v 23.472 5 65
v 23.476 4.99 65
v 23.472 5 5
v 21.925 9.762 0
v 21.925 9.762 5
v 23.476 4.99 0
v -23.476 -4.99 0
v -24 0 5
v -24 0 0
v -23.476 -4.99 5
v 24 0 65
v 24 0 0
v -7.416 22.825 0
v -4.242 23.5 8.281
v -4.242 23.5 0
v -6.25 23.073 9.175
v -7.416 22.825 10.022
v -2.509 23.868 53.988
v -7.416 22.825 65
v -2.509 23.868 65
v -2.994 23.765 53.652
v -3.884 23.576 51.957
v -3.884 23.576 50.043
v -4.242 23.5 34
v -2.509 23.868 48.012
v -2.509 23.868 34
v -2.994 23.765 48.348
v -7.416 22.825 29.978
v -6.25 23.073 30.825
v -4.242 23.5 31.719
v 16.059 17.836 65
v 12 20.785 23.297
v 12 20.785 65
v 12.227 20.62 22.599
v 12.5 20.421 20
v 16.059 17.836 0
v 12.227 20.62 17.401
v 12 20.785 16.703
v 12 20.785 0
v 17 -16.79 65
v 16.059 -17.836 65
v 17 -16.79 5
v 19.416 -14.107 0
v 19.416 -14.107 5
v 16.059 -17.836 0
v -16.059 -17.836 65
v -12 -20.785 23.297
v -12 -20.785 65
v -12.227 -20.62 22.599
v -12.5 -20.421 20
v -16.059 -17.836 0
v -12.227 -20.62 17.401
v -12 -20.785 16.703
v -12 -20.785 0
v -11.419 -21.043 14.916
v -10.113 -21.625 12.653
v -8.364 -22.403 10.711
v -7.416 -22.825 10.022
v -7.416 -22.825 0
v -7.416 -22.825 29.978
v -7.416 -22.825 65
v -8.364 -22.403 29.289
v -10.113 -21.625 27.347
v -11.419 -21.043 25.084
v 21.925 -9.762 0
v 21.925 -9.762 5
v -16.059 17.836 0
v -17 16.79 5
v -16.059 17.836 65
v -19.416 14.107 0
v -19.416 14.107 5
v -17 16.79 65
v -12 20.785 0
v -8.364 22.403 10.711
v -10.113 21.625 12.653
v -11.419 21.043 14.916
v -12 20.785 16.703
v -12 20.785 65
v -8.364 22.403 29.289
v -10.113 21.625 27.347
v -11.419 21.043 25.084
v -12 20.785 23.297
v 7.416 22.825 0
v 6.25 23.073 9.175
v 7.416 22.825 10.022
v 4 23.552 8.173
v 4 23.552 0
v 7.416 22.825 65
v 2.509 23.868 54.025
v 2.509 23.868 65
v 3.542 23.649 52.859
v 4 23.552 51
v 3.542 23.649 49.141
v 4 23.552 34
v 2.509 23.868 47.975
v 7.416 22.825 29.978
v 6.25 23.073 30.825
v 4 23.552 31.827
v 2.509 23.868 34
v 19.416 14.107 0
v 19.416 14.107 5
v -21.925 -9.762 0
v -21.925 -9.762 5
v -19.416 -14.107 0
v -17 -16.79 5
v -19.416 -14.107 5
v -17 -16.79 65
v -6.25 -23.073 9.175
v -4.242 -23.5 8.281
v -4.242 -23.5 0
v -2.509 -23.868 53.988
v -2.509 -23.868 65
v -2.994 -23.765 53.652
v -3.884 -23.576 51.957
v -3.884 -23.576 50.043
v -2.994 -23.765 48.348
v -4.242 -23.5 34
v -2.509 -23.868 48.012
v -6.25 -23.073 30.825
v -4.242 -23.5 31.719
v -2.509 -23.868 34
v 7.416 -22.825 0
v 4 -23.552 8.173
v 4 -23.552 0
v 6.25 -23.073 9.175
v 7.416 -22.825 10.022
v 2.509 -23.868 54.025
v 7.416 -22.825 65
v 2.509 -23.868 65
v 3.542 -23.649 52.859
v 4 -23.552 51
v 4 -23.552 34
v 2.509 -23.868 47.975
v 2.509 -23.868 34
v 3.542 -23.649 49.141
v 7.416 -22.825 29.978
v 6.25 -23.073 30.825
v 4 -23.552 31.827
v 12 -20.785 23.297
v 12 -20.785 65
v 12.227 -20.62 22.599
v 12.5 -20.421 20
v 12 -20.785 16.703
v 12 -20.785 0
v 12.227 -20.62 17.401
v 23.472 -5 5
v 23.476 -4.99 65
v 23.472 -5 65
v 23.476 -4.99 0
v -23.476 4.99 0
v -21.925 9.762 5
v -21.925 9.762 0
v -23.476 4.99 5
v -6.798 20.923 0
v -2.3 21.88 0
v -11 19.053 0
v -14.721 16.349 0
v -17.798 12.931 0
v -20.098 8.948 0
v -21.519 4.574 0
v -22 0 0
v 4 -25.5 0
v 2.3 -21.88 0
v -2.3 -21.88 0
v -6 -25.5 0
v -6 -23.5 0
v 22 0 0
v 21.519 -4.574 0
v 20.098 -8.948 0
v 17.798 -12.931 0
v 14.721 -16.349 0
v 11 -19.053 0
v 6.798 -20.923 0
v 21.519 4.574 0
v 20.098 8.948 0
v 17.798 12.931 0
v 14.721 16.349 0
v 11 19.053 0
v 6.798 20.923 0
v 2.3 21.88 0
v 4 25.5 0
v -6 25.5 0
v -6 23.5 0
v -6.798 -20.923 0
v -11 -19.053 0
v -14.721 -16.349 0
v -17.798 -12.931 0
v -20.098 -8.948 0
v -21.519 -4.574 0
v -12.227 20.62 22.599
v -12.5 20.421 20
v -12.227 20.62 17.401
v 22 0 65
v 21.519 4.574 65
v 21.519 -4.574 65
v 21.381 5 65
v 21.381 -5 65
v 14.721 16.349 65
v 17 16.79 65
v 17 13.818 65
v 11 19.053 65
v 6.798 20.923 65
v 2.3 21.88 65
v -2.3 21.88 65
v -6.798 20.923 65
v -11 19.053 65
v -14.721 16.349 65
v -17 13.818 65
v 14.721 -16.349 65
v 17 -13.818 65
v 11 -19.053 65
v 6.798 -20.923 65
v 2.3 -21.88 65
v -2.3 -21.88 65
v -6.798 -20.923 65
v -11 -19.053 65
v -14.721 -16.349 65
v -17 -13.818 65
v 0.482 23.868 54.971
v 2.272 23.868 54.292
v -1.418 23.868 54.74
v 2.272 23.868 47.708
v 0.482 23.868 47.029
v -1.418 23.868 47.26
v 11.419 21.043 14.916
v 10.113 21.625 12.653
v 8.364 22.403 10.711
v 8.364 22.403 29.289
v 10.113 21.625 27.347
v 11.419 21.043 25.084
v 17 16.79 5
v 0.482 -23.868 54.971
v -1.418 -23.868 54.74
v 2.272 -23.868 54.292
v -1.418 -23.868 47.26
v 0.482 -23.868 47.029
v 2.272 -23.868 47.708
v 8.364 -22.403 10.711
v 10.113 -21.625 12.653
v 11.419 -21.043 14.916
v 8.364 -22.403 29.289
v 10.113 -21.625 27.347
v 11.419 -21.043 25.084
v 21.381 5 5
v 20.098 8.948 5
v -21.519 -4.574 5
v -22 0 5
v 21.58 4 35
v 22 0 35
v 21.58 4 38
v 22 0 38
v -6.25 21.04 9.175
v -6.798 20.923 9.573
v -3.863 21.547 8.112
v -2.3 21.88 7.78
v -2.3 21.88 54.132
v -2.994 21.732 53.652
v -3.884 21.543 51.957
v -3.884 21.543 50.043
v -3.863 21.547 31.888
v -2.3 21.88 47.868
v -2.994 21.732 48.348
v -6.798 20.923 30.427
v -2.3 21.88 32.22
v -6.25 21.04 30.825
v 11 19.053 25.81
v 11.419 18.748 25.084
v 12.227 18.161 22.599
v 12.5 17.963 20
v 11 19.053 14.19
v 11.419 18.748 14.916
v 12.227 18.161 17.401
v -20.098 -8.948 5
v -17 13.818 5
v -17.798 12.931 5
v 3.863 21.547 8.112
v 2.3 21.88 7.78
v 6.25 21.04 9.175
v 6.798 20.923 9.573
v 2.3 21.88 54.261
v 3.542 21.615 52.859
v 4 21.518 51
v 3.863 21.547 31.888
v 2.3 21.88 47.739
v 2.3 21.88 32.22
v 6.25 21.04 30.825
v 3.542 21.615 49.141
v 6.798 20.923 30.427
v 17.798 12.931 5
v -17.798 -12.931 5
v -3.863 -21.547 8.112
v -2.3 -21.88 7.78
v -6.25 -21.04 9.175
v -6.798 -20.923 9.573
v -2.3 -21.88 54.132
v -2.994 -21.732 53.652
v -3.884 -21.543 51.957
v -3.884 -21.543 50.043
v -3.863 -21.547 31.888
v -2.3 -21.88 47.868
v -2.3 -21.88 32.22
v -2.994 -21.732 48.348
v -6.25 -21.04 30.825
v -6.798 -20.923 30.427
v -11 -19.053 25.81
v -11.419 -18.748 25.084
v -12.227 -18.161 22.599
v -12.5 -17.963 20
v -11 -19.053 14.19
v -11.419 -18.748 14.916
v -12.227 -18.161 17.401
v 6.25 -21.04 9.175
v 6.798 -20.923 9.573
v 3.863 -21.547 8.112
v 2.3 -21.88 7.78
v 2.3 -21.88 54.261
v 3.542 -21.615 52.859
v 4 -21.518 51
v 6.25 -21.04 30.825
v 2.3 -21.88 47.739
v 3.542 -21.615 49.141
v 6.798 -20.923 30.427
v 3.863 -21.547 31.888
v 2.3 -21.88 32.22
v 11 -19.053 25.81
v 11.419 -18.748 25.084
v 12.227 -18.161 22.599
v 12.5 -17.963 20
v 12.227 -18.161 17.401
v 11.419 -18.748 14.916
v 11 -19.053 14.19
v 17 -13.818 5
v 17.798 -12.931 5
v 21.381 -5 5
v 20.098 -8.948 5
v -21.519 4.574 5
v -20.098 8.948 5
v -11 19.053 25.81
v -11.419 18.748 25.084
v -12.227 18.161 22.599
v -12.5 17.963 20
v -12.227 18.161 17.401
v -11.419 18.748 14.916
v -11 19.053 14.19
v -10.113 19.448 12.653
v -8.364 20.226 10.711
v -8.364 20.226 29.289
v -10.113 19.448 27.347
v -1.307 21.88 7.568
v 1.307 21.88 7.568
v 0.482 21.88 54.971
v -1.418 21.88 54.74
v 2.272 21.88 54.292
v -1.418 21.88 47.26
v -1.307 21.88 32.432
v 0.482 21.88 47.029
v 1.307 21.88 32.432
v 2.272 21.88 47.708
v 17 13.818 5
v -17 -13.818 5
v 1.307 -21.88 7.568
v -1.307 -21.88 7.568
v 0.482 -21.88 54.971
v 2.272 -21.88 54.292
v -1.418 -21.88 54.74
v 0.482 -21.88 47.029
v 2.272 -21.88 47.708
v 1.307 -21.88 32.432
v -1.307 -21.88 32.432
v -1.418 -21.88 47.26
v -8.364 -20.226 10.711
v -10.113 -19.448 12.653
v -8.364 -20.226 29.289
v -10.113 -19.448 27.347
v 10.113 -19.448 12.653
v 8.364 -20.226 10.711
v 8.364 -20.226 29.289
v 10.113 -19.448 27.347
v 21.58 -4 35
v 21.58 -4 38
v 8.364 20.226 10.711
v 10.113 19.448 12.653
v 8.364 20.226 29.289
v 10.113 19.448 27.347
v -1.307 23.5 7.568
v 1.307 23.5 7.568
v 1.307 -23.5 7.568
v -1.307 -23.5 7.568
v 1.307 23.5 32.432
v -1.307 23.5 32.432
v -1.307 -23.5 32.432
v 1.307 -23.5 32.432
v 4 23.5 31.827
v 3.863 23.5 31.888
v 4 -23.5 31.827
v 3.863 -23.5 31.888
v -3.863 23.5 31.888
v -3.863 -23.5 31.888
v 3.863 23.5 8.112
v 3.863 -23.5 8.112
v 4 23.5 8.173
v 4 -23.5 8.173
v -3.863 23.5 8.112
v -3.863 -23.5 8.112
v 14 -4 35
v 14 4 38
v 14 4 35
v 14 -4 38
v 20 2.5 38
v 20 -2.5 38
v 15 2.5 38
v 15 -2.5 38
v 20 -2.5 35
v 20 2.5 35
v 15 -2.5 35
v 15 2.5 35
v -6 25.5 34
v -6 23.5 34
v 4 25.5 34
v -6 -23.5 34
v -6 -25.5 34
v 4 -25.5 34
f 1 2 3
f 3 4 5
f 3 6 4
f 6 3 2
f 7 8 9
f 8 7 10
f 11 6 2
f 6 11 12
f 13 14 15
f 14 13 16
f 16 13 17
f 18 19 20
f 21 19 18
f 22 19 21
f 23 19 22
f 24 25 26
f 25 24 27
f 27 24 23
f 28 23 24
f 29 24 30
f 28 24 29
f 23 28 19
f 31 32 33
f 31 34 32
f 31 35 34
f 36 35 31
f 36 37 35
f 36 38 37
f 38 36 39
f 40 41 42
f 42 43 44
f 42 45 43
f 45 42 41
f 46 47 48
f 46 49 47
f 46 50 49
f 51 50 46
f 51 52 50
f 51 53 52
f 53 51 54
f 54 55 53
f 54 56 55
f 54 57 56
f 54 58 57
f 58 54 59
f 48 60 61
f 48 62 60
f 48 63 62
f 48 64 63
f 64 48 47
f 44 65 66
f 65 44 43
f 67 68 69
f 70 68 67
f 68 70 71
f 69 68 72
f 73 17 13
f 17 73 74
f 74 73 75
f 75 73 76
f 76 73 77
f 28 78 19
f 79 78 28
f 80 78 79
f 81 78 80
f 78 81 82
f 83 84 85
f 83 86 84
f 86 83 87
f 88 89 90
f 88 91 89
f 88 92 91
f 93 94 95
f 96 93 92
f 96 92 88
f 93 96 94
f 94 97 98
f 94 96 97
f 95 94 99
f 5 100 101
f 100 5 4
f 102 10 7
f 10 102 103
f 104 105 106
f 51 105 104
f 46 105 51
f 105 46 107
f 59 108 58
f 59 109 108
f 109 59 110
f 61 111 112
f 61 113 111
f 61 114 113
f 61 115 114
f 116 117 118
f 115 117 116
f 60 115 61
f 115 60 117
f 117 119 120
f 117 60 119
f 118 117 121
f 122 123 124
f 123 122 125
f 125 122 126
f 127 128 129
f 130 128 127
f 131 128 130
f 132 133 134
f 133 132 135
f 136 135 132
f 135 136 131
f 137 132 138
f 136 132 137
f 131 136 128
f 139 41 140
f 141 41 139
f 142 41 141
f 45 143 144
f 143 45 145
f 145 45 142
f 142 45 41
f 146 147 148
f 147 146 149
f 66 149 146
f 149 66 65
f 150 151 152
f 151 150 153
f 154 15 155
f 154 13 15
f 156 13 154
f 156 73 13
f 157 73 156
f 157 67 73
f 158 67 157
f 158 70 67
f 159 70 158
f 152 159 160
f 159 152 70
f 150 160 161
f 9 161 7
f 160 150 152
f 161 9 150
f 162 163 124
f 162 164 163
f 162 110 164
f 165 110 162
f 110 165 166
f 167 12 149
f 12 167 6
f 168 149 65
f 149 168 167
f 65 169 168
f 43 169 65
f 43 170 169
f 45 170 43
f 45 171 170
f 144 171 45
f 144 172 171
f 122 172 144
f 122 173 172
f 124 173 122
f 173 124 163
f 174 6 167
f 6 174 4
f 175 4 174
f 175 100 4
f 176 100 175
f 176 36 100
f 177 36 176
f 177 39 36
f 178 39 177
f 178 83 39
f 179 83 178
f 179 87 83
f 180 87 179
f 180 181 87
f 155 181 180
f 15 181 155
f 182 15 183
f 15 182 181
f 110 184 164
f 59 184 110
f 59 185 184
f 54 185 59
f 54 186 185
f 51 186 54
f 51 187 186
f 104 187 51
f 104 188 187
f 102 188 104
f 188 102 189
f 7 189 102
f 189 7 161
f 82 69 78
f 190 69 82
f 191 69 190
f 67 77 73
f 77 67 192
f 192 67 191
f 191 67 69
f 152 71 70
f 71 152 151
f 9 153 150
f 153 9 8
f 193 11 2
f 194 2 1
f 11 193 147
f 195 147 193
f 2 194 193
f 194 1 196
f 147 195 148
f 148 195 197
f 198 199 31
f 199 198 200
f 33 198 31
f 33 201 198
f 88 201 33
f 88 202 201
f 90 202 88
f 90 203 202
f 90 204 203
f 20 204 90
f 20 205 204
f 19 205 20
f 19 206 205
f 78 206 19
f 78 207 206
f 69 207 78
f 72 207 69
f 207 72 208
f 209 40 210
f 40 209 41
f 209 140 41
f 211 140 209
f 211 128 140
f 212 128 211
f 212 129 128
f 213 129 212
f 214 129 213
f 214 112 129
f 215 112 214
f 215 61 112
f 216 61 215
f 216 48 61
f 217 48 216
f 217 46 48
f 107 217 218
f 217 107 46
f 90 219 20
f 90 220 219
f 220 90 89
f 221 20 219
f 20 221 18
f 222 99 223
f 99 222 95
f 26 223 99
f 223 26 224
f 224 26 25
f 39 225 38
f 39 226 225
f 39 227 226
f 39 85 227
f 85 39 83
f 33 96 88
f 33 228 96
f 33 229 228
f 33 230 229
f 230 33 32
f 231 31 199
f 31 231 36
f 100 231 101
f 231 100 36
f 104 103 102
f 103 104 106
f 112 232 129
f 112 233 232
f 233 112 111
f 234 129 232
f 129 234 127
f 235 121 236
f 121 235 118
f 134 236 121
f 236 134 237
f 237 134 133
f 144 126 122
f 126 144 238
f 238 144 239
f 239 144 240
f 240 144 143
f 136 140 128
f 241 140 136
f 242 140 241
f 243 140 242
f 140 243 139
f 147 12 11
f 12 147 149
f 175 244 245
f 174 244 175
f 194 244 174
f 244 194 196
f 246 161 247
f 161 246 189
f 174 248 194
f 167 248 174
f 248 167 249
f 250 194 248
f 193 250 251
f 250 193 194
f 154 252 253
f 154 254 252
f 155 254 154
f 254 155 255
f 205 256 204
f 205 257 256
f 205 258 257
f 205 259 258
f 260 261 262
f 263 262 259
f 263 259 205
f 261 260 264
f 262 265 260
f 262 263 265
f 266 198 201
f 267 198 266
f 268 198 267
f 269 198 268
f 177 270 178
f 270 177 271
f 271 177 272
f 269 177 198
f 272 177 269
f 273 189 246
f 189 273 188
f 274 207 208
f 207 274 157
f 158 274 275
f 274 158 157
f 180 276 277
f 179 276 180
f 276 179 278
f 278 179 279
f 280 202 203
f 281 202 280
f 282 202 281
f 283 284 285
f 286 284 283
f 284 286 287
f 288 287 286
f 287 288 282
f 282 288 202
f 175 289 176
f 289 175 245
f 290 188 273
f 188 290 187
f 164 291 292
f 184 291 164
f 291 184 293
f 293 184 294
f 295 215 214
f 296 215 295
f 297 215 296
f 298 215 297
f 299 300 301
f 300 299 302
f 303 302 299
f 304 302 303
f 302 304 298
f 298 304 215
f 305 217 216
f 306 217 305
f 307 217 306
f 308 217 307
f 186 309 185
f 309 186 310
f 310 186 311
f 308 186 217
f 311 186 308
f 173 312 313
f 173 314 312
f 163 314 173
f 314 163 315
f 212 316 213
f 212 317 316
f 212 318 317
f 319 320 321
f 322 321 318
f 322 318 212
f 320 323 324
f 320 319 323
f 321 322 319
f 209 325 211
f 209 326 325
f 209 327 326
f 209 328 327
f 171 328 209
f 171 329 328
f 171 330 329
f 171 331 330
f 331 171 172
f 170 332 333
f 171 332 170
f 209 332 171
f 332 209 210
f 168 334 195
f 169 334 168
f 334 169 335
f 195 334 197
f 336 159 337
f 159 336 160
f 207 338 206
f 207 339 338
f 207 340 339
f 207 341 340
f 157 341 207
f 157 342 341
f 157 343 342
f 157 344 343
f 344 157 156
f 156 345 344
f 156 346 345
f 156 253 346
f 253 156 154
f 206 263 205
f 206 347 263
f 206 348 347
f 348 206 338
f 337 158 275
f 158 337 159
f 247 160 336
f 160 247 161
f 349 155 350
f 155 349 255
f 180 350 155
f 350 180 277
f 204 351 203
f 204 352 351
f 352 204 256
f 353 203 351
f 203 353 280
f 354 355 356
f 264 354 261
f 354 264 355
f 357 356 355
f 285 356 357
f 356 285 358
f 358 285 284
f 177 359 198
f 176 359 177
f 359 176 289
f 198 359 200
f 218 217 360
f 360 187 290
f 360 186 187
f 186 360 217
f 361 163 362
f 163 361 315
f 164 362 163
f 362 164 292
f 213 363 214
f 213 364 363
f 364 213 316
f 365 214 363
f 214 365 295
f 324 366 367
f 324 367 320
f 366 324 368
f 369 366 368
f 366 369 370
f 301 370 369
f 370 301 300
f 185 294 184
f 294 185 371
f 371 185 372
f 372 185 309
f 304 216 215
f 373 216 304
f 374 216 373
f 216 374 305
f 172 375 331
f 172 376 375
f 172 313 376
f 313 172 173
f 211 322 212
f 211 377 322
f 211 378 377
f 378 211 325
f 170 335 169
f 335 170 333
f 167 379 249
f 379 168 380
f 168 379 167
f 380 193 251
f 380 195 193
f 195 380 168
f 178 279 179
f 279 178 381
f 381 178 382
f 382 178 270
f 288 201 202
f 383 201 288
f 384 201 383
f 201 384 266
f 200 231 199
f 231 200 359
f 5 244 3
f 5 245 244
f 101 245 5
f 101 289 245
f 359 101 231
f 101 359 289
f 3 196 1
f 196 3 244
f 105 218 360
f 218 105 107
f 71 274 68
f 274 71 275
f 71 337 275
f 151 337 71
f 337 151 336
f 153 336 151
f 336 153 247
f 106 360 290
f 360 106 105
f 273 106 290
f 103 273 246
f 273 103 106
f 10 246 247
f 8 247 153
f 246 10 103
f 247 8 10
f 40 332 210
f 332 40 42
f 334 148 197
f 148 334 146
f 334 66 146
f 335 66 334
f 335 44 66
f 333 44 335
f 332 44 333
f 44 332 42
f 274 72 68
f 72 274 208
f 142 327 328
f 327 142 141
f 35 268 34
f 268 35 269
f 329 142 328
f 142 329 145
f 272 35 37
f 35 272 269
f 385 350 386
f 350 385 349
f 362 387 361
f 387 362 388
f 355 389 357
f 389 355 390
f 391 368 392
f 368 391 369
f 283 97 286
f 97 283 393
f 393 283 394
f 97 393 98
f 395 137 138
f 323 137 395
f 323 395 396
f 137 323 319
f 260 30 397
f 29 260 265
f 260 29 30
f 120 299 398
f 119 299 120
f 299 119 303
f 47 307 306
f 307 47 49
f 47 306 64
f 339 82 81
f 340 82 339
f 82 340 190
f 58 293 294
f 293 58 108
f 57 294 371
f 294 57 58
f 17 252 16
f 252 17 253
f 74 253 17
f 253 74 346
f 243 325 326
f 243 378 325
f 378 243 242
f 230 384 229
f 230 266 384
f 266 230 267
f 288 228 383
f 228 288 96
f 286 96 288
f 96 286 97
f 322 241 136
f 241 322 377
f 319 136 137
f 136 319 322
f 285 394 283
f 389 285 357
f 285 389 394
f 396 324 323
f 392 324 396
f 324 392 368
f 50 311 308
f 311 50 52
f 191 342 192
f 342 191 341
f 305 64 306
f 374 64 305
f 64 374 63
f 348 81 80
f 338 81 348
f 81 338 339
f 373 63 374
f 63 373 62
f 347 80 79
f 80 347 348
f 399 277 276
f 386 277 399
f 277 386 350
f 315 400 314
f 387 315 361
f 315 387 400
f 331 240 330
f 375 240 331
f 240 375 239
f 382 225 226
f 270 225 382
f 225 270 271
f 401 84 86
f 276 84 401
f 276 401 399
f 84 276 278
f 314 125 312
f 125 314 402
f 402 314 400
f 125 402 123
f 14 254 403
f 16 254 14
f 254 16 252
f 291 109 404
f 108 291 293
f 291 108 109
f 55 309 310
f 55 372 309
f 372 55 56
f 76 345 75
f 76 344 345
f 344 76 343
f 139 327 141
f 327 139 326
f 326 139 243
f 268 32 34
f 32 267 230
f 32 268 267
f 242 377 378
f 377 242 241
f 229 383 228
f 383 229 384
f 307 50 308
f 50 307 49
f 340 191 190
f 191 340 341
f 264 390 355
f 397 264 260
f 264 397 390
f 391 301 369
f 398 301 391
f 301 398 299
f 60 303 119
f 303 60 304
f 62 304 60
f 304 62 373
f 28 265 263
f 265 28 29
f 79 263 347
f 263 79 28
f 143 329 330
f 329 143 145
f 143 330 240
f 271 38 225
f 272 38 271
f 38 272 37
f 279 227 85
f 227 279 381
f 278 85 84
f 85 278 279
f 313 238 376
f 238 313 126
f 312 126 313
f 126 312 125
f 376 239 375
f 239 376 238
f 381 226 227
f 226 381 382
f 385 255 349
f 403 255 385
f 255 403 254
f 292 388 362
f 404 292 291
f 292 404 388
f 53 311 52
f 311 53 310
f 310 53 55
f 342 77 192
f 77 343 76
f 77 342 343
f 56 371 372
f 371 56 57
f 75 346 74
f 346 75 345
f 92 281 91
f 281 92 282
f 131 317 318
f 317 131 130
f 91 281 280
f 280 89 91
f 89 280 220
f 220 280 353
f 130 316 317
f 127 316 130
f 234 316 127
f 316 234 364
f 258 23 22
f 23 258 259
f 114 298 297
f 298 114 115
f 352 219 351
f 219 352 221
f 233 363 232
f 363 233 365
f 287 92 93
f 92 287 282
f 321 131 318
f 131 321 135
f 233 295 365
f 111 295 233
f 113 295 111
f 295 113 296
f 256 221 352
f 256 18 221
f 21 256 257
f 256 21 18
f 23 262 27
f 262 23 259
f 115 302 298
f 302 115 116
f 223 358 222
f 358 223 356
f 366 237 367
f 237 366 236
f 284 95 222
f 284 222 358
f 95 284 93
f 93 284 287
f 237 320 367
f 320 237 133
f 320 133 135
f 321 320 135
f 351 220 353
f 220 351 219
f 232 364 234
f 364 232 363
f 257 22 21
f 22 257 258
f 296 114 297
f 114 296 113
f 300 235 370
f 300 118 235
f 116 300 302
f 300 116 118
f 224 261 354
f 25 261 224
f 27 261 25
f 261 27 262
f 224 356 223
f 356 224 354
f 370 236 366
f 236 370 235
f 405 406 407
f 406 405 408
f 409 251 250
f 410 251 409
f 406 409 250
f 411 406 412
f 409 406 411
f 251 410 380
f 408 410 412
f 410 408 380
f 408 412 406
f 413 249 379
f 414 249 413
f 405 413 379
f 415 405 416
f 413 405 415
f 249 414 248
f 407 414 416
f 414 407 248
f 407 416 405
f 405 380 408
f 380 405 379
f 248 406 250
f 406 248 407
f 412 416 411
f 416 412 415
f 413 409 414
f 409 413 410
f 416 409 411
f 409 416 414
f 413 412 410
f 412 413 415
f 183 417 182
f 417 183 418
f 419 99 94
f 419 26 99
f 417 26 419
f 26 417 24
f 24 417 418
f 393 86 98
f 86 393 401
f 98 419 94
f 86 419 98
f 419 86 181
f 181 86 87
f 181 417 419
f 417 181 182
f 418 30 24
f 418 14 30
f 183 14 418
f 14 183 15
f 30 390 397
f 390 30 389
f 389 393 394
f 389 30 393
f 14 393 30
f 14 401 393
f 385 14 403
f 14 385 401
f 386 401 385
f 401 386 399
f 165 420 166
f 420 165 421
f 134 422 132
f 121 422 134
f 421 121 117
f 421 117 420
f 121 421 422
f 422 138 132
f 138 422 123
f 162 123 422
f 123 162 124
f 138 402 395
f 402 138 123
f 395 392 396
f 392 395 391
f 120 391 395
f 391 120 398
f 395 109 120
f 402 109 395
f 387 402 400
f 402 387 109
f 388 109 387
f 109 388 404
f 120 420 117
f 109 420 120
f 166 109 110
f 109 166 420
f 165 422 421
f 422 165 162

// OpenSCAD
module base(){
difference(){ linear_extrude(height = 65)circle(d=48);
    linear_extrude(height = 66)circle(d=44);
    
    translate([17,5,5])cube([60,30,61]); //subtract from top right
    translate([-77,-35,5])cube([60,30,61]);//subtract from bottom left
    translate([17,-35,5])cube([60,30,61]); //subtract from bottom right
    translate([-77,5,5])cube([60,30,61]);
    
    translate([-25,-6,5])cube([15,15,61]);
    
    rotate([90,0,0]) translate([0,20,-35])cylinder(h=60, d=25); //large hole through lower section
    
    rotate([90,0,0]) translate([0,51,-35])cylinder(h=60, d=8); // small hole in upper section
}
    translate([-6,23.5,0])cube([10,2, 34]); //top support
    
    translate([-6,-25.5,0])cube([10,2, 34]); // bottom support

    difference(){translate([14,-4,35]) cube([8,8,3]);
       translate([15,-2.5,35]) cube([5,5,3]); 
    }
}


base();
